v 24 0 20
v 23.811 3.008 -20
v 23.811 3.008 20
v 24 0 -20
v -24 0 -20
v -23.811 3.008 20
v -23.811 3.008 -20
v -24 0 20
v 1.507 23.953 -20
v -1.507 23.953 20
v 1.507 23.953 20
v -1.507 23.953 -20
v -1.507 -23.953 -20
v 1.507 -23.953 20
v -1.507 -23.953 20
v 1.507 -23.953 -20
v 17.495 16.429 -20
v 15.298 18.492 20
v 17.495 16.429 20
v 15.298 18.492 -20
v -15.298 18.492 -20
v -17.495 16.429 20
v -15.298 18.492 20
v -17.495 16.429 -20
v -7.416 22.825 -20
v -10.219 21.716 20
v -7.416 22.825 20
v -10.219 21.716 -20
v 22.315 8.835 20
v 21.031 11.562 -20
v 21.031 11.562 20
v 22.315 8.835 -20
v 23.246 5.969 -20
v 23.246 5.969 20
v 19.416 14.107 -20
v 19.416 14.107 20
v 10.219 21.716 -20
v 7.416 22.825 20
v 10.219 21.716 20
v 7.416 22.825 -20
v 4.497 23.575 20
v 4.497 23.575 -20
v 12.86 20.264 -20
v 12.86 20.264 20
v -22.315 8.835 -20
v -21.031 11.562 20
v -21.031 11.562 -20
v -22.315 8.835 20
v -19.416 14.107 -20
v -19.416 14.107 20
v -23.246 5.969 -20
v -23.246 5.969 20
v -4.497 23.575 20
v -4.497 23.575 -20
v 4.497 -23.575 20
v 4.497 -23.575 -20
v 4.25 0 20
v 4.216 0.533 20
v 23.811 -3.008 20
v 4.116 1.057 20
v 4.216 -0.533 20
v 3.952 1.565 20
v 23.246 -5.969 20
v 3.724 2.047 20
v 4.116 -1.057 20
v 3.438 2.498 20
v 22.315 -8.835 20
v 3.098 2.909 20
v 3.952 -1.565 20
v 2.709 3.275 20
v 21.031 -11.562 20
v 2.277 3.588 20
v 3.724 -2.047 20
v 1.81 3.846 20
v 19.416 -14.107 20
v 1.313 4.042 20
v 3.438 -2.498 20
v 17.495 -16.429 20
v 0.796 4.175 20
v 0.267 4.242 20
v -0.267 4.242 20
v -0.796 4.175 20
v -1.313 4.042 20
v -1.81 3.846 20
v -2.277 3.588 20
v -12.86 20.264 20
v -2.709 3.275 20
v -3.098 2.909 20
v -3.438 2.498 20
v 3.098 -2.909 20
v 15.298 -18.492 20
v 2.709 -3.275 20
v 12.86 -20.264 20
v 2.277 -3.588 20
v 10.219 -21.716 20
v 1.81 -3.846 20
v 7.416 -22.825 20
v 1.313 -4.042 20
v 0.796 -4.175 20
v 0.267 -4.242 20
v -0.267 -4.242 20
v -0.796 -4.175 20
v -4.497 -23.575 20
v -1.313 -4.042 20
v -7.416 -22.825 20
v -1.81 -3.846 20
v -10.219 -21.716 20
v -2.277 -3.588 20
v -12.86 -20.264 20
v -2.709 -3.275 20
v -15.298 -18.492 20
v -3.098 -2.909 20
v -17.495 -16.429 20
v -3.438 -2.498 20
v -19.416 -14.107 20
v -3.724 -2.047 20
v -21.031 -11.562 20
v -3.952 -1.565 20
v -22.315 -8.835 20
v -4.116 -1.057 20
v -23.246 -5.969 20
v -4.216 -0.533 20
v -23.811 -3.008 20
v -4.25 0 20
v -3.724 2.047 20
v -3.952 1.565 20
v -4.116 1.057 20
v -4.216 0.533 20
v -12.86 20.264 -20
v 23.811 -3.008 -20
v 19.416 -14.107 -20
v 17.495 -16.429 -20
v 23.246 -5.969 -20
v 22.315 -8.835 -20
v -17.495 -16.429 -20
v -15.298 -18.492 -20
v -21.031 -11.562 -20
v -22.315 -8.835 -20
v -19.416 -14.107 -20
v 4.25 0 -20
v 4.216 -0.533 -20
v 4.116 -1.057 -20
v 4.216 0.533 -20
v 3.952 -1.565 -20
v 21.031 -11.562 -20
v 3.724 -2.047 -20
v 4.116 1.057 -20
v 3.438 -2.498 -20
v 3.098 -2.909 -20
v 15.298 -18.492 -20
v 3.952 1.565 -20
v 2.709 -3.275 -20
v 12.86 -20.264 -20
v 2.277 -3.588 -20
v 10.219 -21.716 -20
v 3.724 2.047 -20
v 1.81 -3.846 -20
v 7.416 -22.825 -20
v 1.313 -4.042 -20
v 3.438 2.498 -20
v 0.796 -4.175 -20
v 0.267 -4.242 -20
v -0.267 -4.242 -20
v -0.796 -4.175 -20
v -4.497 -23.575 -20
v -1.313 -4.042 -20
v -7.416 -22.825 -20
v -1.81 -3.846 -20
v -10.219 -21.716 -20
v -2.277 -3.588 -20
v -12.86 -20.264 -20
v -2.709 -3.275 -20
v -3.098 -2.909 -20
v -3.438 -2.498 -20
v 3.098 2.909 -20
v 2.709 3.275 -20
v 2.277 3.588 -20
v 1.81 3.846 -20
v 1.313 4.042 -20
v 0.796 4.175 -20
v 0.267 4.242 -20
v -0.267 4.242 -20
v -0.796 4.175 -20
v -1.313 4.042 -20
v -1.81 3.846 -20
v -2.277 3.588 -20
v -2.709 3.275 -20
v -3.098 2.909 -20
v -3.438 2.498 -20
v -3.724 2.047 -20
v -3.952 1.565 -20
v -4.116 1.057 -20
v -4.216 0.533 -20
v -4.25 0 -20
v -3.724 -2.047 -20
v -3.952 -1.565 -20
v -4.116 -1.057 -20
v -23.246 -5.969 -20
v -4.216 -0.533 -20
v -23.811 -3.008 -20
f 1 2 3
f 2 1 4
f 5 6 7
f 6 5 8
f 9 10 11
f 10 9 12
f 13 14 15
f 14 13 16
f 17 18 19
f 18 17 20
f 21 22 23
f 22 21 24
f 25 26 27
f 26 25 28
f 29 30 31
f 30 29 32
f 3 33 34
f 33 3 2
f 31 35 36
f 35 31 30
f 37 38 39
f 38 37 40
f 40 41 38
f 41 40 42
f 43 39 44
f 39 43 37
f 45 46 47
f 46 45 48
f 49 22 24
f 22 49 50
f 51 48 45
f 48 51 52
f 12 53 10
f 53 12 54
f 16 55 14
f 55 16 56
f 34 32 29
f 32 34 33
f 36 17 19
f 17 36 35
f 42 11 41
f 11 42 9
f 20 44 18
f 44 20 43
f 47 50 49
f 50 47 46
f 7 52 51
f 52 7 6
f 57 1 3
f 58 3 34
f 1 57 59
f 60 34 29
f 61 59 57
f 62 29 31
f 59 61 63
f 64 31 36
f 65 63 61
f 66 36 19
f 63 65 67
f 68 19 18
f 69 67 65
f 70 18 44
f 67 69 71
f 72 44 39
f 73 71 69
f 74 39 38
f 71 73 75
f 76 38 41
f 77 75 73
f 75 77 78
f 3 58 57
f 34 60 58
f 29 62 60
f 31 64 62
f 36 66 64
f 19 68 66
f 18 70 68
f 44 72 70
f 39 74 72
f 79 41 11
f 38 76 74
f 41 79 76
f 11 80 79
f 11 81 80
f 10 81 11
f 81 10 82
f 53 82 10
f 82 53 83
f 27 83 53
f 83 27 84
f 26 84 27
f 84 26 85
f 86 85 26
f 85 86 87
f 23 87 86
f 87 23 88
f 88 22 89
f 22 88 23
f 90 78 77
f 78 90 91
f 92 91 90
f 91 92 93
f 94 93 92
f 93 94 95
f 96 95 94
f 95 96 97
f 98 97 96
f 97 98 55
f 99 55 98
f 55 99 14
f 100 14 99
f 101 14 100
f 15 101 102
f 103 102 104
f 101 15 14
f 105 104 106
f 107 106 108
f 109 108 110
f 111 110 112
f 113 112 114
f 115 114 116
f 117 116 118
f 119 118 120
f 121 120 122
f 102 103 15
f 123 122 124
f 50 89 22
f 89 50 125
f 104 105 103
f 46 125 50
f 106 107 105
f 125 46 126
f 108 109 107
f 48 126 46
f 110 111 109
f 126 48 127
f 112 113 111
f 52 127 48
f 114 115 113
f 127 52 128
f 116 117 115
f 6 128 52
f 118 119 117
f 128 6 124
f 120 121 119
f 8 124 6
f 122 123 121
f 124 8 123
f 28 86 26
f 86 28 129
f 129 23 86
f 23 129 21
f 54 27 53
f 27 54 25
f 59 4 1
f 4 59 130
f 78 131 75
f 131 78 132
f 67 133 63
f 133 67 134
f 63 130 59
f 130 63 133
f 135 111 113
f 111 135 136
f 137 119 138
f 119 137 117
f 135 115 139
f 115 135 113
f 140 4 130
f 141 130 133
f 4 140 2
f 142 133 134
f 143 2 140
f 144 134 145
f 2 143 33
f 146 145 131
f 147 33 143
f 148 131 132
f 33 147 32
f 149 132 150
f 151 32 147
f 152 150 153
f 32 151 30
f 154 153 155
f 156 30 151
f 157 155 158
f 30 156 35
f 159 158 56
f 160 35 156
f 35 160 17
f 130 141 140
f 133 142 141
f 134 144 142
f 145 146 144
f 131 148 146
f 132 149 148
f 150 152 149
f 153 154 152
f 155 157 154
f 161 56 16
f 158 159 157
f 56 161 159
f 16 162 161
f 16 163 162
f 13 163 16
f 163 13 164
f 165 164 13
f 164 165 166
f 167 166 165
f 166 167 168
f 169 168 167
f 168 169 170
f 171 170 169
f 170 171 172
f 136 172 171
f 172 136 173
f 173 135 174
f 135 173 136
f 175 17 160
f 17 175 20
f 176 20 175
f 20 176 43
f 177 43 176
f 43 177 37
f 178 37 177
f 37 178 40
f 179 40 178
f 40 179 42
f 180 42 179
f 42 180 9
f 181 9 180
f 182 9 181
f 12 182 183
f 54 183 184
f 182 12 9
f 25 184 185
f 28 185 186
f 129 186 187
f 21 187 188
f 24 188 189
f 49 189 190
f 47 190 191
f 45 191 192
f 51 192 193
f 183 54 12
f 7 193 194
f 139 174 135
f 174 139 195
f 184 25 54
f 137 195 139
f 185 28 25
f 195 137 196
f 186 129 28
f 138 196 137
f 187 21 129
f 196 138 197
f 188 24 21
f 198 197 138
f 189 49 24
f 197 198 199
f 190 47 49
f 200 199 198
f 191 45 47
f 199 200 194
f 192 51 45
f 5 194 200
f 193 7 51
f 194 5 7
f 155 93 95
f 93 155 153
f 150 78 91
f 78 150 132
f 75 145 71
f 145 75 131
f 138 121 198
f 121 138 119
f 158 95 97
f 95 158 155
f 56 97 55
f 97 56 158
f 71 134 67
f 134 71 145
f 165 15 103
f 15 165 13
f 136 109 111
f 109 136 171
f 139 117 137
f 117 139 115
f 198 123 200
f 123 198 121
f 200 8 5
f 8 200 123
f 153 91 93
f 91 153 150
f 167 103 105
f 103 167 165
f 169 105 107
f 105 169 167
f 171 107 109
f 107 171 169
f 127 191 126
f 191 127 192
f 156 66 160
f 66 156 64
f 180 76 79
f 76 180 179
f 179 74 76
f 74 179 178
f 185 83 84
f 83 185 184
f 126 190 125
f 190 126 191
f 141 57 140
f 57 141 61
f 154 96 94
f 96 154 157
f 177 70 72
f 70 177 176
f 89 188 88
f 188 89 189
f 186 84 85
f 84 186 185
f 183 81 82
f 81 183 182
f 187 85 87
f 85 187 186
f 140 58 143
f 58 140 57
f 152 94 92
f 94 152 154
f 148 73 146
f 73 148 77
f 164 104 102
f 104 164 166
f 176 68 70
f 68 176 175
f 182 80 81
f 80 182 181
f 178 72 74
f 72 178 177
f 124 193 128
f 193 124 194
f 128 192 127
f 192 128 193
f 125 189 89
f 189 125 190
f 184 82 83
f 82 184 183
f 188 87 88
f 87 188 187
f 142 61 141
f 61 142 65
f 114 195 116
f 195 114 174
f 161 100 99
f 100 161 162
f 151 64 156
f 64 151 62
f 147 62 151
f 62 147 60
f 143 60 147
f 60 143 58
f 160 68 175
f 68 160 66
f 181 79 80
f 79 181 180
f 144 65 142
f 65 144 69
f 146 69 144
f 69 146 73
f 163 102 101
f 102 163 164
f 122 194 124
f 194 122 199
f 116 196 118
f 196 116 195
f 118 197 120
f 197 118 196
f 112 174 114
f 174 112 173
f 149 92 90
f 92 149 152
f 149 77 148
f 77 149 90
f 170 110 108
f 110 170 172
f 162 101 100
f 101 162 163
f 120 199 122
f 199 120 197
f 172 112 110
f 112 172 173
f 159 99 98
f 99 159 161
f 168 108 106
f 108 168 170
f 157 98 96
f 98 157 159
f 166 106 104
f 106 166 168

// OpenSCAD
$fn = 50;


difference() {
	union() {
		translate(v = [0, 0, -20.0000000000]) {
			cylinder(h = 40, r = 24.0000000000);
		}
	}
	union() {
		translate(v = [0, 0, -100.0000000000]) {
			cylinder(h = 200, r = 4.2500000000);
		}
	}
}
